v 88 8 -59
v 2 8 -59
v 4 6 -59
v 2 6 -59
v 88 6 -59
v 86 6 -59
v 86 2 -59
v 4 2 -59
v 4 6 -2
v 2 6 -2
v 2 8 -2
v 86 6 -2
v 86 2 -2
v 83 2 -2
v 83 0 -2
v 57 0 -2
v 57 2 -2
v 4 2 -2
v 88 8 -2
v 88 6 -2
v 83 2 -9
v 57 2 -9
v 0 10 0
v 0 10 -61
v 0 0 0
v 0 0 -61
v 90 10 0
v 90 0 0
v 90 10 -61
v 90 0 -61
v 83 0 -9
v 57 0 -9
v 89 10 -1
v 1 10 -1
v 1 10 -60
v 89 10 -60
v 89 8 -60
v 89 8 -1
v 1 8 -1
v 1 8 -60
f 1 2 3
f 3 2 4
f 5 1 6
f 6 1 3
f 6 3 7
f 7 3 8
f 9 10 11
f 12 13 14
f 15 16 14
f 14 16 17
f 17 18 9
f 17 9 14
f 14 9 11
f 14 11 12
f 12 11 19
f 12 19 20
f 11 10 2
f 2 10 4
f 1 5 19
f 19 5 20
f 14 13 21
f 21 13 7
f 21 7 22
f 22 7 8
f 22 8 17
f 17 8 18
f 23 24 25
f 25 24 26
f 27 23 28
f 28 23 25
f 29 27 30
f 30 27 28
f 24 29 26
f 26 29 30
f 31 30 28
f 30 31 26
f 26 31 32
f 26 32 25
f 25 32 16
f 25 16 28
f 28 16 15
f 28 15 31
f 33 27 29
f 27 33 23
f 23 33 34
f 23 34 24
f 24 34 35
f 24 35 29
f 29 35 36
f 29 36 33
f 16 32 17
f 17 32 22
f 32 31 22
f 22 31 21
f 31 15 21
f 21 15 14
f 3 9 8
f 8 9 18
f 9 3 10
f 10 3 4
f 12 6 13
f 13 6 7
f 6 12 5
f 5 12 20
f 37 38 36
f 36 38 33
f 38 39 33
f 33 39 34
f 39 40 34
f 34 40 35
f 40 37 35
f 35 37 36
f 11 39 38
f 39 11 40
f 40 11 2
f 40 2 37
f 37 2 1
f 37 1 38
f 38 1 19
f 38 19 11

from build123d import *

# Parameters (mm, degrees)
SKETCH1_W           = 90
SKETCH1_H           = 61
BOSS_EXTRUDE1_DEPTH = 2
SKETCH2_W           = 90
SKETCH2_H           = 61
SKETCH2_W_2         = 86
SKETCH2_H_2         = 57
BOSS_EXTRUDE2_DEPTH = 8
SKETCH3_W           = 26
SKETCH3_H           = 7
CUT_EXTRUDE1_DEPTH  = 2
SKETCH4_W           = 2
SKETCH4_H           = 57
BOSS_EXTRUDE3_DEPTH = 4
SKETCH5_W           = 88
SKETCH5_H           = 59
SKETCH5_W_2         = 86
SKETCH5_H_2         = 57
CUT_EXTRUDE2_DEPTH  = 2


with BuildPart() as part:
    # Sketch1 → Boss-Extrude1 (new body)
    with BuildSketch(Plane(origin=(0, 0, 0), x_dir=(1, 0, 0), z_dir=(0, 1, 0))):
        with Locations((45, 30.5)):
            Rectangle(SKETCH1_W, SKETCH1_H)
    extrude(amount=BOSS_EXTRUDE1_DEPTH)

    # Sketch2 → Boss-Extrude2 (add)
    with BuildSketch(Plane(origin=(0, 2, 0), x_dir=(1, 0, 0), z_dir=(0, 1, 0))):
        with Locations((45, 30.5)):
            Rectangle(SKETCH2_W, SKETCH2_H)
        with Locations((45, 30.5)):
            Rectangle(SKETCH2_W_2, SKETCH2_H_2, mode=Mode.SUBTRACT)
    extrude(amount=BOSS_EXTRUDE2_DEPTH)

    # Sketch3 → Cut-Extrude1 (cut)
    with BuildSketch(Plane(origin=(0, 2, 0), x_dir=(1, 0, 0), z_dir=(0, 1, 0))):
        with Locations((70, 5.5)):
            Rectangle(SKETCH3_W, SKETCH3_H)
    extrude(amount=-CUT_EXTRUDE1_DEPTH, mode=Mode.SUBTRACT)

    # Sketch4 → Boss-Extrude3 (add)
    with BuildSketch(Plane(origin=(0, 2, 0), x_dir=(1, 0, 0), z_dir=(0, 1, 0))):
        with Locations((3, 30.5)):
            Rectangle(SKETCH4_W, SKETCH4_H)
        with Locations((87, 30.5)):
            Rectangle(SKETCH4_W, SKETCH4_H)
    extrude(amount=BOSS_EXTRUDE3_DEPTH)

    # Sketch5 → Cut-Extrude2 (cut)
    with BuildSketch(Plane(origin=(0, 10, 0), x_dir=(1, 0, 0), z_dir=(0, 1, 0))):
        with Locations((45, 30.5)):
            Rectangle(SKETCH5_W, SKETCH5_H)
        with Locations((45, 30.5)):
            Rectangle(SKETCH5_W_2, SKETCH5_H_2, mode=Mode.SUBTRACT)
    extrude(amount=-CUT_EXTRUDE2_DEPTH, mode=Mode.SUBTRACT)


solid = part.part
